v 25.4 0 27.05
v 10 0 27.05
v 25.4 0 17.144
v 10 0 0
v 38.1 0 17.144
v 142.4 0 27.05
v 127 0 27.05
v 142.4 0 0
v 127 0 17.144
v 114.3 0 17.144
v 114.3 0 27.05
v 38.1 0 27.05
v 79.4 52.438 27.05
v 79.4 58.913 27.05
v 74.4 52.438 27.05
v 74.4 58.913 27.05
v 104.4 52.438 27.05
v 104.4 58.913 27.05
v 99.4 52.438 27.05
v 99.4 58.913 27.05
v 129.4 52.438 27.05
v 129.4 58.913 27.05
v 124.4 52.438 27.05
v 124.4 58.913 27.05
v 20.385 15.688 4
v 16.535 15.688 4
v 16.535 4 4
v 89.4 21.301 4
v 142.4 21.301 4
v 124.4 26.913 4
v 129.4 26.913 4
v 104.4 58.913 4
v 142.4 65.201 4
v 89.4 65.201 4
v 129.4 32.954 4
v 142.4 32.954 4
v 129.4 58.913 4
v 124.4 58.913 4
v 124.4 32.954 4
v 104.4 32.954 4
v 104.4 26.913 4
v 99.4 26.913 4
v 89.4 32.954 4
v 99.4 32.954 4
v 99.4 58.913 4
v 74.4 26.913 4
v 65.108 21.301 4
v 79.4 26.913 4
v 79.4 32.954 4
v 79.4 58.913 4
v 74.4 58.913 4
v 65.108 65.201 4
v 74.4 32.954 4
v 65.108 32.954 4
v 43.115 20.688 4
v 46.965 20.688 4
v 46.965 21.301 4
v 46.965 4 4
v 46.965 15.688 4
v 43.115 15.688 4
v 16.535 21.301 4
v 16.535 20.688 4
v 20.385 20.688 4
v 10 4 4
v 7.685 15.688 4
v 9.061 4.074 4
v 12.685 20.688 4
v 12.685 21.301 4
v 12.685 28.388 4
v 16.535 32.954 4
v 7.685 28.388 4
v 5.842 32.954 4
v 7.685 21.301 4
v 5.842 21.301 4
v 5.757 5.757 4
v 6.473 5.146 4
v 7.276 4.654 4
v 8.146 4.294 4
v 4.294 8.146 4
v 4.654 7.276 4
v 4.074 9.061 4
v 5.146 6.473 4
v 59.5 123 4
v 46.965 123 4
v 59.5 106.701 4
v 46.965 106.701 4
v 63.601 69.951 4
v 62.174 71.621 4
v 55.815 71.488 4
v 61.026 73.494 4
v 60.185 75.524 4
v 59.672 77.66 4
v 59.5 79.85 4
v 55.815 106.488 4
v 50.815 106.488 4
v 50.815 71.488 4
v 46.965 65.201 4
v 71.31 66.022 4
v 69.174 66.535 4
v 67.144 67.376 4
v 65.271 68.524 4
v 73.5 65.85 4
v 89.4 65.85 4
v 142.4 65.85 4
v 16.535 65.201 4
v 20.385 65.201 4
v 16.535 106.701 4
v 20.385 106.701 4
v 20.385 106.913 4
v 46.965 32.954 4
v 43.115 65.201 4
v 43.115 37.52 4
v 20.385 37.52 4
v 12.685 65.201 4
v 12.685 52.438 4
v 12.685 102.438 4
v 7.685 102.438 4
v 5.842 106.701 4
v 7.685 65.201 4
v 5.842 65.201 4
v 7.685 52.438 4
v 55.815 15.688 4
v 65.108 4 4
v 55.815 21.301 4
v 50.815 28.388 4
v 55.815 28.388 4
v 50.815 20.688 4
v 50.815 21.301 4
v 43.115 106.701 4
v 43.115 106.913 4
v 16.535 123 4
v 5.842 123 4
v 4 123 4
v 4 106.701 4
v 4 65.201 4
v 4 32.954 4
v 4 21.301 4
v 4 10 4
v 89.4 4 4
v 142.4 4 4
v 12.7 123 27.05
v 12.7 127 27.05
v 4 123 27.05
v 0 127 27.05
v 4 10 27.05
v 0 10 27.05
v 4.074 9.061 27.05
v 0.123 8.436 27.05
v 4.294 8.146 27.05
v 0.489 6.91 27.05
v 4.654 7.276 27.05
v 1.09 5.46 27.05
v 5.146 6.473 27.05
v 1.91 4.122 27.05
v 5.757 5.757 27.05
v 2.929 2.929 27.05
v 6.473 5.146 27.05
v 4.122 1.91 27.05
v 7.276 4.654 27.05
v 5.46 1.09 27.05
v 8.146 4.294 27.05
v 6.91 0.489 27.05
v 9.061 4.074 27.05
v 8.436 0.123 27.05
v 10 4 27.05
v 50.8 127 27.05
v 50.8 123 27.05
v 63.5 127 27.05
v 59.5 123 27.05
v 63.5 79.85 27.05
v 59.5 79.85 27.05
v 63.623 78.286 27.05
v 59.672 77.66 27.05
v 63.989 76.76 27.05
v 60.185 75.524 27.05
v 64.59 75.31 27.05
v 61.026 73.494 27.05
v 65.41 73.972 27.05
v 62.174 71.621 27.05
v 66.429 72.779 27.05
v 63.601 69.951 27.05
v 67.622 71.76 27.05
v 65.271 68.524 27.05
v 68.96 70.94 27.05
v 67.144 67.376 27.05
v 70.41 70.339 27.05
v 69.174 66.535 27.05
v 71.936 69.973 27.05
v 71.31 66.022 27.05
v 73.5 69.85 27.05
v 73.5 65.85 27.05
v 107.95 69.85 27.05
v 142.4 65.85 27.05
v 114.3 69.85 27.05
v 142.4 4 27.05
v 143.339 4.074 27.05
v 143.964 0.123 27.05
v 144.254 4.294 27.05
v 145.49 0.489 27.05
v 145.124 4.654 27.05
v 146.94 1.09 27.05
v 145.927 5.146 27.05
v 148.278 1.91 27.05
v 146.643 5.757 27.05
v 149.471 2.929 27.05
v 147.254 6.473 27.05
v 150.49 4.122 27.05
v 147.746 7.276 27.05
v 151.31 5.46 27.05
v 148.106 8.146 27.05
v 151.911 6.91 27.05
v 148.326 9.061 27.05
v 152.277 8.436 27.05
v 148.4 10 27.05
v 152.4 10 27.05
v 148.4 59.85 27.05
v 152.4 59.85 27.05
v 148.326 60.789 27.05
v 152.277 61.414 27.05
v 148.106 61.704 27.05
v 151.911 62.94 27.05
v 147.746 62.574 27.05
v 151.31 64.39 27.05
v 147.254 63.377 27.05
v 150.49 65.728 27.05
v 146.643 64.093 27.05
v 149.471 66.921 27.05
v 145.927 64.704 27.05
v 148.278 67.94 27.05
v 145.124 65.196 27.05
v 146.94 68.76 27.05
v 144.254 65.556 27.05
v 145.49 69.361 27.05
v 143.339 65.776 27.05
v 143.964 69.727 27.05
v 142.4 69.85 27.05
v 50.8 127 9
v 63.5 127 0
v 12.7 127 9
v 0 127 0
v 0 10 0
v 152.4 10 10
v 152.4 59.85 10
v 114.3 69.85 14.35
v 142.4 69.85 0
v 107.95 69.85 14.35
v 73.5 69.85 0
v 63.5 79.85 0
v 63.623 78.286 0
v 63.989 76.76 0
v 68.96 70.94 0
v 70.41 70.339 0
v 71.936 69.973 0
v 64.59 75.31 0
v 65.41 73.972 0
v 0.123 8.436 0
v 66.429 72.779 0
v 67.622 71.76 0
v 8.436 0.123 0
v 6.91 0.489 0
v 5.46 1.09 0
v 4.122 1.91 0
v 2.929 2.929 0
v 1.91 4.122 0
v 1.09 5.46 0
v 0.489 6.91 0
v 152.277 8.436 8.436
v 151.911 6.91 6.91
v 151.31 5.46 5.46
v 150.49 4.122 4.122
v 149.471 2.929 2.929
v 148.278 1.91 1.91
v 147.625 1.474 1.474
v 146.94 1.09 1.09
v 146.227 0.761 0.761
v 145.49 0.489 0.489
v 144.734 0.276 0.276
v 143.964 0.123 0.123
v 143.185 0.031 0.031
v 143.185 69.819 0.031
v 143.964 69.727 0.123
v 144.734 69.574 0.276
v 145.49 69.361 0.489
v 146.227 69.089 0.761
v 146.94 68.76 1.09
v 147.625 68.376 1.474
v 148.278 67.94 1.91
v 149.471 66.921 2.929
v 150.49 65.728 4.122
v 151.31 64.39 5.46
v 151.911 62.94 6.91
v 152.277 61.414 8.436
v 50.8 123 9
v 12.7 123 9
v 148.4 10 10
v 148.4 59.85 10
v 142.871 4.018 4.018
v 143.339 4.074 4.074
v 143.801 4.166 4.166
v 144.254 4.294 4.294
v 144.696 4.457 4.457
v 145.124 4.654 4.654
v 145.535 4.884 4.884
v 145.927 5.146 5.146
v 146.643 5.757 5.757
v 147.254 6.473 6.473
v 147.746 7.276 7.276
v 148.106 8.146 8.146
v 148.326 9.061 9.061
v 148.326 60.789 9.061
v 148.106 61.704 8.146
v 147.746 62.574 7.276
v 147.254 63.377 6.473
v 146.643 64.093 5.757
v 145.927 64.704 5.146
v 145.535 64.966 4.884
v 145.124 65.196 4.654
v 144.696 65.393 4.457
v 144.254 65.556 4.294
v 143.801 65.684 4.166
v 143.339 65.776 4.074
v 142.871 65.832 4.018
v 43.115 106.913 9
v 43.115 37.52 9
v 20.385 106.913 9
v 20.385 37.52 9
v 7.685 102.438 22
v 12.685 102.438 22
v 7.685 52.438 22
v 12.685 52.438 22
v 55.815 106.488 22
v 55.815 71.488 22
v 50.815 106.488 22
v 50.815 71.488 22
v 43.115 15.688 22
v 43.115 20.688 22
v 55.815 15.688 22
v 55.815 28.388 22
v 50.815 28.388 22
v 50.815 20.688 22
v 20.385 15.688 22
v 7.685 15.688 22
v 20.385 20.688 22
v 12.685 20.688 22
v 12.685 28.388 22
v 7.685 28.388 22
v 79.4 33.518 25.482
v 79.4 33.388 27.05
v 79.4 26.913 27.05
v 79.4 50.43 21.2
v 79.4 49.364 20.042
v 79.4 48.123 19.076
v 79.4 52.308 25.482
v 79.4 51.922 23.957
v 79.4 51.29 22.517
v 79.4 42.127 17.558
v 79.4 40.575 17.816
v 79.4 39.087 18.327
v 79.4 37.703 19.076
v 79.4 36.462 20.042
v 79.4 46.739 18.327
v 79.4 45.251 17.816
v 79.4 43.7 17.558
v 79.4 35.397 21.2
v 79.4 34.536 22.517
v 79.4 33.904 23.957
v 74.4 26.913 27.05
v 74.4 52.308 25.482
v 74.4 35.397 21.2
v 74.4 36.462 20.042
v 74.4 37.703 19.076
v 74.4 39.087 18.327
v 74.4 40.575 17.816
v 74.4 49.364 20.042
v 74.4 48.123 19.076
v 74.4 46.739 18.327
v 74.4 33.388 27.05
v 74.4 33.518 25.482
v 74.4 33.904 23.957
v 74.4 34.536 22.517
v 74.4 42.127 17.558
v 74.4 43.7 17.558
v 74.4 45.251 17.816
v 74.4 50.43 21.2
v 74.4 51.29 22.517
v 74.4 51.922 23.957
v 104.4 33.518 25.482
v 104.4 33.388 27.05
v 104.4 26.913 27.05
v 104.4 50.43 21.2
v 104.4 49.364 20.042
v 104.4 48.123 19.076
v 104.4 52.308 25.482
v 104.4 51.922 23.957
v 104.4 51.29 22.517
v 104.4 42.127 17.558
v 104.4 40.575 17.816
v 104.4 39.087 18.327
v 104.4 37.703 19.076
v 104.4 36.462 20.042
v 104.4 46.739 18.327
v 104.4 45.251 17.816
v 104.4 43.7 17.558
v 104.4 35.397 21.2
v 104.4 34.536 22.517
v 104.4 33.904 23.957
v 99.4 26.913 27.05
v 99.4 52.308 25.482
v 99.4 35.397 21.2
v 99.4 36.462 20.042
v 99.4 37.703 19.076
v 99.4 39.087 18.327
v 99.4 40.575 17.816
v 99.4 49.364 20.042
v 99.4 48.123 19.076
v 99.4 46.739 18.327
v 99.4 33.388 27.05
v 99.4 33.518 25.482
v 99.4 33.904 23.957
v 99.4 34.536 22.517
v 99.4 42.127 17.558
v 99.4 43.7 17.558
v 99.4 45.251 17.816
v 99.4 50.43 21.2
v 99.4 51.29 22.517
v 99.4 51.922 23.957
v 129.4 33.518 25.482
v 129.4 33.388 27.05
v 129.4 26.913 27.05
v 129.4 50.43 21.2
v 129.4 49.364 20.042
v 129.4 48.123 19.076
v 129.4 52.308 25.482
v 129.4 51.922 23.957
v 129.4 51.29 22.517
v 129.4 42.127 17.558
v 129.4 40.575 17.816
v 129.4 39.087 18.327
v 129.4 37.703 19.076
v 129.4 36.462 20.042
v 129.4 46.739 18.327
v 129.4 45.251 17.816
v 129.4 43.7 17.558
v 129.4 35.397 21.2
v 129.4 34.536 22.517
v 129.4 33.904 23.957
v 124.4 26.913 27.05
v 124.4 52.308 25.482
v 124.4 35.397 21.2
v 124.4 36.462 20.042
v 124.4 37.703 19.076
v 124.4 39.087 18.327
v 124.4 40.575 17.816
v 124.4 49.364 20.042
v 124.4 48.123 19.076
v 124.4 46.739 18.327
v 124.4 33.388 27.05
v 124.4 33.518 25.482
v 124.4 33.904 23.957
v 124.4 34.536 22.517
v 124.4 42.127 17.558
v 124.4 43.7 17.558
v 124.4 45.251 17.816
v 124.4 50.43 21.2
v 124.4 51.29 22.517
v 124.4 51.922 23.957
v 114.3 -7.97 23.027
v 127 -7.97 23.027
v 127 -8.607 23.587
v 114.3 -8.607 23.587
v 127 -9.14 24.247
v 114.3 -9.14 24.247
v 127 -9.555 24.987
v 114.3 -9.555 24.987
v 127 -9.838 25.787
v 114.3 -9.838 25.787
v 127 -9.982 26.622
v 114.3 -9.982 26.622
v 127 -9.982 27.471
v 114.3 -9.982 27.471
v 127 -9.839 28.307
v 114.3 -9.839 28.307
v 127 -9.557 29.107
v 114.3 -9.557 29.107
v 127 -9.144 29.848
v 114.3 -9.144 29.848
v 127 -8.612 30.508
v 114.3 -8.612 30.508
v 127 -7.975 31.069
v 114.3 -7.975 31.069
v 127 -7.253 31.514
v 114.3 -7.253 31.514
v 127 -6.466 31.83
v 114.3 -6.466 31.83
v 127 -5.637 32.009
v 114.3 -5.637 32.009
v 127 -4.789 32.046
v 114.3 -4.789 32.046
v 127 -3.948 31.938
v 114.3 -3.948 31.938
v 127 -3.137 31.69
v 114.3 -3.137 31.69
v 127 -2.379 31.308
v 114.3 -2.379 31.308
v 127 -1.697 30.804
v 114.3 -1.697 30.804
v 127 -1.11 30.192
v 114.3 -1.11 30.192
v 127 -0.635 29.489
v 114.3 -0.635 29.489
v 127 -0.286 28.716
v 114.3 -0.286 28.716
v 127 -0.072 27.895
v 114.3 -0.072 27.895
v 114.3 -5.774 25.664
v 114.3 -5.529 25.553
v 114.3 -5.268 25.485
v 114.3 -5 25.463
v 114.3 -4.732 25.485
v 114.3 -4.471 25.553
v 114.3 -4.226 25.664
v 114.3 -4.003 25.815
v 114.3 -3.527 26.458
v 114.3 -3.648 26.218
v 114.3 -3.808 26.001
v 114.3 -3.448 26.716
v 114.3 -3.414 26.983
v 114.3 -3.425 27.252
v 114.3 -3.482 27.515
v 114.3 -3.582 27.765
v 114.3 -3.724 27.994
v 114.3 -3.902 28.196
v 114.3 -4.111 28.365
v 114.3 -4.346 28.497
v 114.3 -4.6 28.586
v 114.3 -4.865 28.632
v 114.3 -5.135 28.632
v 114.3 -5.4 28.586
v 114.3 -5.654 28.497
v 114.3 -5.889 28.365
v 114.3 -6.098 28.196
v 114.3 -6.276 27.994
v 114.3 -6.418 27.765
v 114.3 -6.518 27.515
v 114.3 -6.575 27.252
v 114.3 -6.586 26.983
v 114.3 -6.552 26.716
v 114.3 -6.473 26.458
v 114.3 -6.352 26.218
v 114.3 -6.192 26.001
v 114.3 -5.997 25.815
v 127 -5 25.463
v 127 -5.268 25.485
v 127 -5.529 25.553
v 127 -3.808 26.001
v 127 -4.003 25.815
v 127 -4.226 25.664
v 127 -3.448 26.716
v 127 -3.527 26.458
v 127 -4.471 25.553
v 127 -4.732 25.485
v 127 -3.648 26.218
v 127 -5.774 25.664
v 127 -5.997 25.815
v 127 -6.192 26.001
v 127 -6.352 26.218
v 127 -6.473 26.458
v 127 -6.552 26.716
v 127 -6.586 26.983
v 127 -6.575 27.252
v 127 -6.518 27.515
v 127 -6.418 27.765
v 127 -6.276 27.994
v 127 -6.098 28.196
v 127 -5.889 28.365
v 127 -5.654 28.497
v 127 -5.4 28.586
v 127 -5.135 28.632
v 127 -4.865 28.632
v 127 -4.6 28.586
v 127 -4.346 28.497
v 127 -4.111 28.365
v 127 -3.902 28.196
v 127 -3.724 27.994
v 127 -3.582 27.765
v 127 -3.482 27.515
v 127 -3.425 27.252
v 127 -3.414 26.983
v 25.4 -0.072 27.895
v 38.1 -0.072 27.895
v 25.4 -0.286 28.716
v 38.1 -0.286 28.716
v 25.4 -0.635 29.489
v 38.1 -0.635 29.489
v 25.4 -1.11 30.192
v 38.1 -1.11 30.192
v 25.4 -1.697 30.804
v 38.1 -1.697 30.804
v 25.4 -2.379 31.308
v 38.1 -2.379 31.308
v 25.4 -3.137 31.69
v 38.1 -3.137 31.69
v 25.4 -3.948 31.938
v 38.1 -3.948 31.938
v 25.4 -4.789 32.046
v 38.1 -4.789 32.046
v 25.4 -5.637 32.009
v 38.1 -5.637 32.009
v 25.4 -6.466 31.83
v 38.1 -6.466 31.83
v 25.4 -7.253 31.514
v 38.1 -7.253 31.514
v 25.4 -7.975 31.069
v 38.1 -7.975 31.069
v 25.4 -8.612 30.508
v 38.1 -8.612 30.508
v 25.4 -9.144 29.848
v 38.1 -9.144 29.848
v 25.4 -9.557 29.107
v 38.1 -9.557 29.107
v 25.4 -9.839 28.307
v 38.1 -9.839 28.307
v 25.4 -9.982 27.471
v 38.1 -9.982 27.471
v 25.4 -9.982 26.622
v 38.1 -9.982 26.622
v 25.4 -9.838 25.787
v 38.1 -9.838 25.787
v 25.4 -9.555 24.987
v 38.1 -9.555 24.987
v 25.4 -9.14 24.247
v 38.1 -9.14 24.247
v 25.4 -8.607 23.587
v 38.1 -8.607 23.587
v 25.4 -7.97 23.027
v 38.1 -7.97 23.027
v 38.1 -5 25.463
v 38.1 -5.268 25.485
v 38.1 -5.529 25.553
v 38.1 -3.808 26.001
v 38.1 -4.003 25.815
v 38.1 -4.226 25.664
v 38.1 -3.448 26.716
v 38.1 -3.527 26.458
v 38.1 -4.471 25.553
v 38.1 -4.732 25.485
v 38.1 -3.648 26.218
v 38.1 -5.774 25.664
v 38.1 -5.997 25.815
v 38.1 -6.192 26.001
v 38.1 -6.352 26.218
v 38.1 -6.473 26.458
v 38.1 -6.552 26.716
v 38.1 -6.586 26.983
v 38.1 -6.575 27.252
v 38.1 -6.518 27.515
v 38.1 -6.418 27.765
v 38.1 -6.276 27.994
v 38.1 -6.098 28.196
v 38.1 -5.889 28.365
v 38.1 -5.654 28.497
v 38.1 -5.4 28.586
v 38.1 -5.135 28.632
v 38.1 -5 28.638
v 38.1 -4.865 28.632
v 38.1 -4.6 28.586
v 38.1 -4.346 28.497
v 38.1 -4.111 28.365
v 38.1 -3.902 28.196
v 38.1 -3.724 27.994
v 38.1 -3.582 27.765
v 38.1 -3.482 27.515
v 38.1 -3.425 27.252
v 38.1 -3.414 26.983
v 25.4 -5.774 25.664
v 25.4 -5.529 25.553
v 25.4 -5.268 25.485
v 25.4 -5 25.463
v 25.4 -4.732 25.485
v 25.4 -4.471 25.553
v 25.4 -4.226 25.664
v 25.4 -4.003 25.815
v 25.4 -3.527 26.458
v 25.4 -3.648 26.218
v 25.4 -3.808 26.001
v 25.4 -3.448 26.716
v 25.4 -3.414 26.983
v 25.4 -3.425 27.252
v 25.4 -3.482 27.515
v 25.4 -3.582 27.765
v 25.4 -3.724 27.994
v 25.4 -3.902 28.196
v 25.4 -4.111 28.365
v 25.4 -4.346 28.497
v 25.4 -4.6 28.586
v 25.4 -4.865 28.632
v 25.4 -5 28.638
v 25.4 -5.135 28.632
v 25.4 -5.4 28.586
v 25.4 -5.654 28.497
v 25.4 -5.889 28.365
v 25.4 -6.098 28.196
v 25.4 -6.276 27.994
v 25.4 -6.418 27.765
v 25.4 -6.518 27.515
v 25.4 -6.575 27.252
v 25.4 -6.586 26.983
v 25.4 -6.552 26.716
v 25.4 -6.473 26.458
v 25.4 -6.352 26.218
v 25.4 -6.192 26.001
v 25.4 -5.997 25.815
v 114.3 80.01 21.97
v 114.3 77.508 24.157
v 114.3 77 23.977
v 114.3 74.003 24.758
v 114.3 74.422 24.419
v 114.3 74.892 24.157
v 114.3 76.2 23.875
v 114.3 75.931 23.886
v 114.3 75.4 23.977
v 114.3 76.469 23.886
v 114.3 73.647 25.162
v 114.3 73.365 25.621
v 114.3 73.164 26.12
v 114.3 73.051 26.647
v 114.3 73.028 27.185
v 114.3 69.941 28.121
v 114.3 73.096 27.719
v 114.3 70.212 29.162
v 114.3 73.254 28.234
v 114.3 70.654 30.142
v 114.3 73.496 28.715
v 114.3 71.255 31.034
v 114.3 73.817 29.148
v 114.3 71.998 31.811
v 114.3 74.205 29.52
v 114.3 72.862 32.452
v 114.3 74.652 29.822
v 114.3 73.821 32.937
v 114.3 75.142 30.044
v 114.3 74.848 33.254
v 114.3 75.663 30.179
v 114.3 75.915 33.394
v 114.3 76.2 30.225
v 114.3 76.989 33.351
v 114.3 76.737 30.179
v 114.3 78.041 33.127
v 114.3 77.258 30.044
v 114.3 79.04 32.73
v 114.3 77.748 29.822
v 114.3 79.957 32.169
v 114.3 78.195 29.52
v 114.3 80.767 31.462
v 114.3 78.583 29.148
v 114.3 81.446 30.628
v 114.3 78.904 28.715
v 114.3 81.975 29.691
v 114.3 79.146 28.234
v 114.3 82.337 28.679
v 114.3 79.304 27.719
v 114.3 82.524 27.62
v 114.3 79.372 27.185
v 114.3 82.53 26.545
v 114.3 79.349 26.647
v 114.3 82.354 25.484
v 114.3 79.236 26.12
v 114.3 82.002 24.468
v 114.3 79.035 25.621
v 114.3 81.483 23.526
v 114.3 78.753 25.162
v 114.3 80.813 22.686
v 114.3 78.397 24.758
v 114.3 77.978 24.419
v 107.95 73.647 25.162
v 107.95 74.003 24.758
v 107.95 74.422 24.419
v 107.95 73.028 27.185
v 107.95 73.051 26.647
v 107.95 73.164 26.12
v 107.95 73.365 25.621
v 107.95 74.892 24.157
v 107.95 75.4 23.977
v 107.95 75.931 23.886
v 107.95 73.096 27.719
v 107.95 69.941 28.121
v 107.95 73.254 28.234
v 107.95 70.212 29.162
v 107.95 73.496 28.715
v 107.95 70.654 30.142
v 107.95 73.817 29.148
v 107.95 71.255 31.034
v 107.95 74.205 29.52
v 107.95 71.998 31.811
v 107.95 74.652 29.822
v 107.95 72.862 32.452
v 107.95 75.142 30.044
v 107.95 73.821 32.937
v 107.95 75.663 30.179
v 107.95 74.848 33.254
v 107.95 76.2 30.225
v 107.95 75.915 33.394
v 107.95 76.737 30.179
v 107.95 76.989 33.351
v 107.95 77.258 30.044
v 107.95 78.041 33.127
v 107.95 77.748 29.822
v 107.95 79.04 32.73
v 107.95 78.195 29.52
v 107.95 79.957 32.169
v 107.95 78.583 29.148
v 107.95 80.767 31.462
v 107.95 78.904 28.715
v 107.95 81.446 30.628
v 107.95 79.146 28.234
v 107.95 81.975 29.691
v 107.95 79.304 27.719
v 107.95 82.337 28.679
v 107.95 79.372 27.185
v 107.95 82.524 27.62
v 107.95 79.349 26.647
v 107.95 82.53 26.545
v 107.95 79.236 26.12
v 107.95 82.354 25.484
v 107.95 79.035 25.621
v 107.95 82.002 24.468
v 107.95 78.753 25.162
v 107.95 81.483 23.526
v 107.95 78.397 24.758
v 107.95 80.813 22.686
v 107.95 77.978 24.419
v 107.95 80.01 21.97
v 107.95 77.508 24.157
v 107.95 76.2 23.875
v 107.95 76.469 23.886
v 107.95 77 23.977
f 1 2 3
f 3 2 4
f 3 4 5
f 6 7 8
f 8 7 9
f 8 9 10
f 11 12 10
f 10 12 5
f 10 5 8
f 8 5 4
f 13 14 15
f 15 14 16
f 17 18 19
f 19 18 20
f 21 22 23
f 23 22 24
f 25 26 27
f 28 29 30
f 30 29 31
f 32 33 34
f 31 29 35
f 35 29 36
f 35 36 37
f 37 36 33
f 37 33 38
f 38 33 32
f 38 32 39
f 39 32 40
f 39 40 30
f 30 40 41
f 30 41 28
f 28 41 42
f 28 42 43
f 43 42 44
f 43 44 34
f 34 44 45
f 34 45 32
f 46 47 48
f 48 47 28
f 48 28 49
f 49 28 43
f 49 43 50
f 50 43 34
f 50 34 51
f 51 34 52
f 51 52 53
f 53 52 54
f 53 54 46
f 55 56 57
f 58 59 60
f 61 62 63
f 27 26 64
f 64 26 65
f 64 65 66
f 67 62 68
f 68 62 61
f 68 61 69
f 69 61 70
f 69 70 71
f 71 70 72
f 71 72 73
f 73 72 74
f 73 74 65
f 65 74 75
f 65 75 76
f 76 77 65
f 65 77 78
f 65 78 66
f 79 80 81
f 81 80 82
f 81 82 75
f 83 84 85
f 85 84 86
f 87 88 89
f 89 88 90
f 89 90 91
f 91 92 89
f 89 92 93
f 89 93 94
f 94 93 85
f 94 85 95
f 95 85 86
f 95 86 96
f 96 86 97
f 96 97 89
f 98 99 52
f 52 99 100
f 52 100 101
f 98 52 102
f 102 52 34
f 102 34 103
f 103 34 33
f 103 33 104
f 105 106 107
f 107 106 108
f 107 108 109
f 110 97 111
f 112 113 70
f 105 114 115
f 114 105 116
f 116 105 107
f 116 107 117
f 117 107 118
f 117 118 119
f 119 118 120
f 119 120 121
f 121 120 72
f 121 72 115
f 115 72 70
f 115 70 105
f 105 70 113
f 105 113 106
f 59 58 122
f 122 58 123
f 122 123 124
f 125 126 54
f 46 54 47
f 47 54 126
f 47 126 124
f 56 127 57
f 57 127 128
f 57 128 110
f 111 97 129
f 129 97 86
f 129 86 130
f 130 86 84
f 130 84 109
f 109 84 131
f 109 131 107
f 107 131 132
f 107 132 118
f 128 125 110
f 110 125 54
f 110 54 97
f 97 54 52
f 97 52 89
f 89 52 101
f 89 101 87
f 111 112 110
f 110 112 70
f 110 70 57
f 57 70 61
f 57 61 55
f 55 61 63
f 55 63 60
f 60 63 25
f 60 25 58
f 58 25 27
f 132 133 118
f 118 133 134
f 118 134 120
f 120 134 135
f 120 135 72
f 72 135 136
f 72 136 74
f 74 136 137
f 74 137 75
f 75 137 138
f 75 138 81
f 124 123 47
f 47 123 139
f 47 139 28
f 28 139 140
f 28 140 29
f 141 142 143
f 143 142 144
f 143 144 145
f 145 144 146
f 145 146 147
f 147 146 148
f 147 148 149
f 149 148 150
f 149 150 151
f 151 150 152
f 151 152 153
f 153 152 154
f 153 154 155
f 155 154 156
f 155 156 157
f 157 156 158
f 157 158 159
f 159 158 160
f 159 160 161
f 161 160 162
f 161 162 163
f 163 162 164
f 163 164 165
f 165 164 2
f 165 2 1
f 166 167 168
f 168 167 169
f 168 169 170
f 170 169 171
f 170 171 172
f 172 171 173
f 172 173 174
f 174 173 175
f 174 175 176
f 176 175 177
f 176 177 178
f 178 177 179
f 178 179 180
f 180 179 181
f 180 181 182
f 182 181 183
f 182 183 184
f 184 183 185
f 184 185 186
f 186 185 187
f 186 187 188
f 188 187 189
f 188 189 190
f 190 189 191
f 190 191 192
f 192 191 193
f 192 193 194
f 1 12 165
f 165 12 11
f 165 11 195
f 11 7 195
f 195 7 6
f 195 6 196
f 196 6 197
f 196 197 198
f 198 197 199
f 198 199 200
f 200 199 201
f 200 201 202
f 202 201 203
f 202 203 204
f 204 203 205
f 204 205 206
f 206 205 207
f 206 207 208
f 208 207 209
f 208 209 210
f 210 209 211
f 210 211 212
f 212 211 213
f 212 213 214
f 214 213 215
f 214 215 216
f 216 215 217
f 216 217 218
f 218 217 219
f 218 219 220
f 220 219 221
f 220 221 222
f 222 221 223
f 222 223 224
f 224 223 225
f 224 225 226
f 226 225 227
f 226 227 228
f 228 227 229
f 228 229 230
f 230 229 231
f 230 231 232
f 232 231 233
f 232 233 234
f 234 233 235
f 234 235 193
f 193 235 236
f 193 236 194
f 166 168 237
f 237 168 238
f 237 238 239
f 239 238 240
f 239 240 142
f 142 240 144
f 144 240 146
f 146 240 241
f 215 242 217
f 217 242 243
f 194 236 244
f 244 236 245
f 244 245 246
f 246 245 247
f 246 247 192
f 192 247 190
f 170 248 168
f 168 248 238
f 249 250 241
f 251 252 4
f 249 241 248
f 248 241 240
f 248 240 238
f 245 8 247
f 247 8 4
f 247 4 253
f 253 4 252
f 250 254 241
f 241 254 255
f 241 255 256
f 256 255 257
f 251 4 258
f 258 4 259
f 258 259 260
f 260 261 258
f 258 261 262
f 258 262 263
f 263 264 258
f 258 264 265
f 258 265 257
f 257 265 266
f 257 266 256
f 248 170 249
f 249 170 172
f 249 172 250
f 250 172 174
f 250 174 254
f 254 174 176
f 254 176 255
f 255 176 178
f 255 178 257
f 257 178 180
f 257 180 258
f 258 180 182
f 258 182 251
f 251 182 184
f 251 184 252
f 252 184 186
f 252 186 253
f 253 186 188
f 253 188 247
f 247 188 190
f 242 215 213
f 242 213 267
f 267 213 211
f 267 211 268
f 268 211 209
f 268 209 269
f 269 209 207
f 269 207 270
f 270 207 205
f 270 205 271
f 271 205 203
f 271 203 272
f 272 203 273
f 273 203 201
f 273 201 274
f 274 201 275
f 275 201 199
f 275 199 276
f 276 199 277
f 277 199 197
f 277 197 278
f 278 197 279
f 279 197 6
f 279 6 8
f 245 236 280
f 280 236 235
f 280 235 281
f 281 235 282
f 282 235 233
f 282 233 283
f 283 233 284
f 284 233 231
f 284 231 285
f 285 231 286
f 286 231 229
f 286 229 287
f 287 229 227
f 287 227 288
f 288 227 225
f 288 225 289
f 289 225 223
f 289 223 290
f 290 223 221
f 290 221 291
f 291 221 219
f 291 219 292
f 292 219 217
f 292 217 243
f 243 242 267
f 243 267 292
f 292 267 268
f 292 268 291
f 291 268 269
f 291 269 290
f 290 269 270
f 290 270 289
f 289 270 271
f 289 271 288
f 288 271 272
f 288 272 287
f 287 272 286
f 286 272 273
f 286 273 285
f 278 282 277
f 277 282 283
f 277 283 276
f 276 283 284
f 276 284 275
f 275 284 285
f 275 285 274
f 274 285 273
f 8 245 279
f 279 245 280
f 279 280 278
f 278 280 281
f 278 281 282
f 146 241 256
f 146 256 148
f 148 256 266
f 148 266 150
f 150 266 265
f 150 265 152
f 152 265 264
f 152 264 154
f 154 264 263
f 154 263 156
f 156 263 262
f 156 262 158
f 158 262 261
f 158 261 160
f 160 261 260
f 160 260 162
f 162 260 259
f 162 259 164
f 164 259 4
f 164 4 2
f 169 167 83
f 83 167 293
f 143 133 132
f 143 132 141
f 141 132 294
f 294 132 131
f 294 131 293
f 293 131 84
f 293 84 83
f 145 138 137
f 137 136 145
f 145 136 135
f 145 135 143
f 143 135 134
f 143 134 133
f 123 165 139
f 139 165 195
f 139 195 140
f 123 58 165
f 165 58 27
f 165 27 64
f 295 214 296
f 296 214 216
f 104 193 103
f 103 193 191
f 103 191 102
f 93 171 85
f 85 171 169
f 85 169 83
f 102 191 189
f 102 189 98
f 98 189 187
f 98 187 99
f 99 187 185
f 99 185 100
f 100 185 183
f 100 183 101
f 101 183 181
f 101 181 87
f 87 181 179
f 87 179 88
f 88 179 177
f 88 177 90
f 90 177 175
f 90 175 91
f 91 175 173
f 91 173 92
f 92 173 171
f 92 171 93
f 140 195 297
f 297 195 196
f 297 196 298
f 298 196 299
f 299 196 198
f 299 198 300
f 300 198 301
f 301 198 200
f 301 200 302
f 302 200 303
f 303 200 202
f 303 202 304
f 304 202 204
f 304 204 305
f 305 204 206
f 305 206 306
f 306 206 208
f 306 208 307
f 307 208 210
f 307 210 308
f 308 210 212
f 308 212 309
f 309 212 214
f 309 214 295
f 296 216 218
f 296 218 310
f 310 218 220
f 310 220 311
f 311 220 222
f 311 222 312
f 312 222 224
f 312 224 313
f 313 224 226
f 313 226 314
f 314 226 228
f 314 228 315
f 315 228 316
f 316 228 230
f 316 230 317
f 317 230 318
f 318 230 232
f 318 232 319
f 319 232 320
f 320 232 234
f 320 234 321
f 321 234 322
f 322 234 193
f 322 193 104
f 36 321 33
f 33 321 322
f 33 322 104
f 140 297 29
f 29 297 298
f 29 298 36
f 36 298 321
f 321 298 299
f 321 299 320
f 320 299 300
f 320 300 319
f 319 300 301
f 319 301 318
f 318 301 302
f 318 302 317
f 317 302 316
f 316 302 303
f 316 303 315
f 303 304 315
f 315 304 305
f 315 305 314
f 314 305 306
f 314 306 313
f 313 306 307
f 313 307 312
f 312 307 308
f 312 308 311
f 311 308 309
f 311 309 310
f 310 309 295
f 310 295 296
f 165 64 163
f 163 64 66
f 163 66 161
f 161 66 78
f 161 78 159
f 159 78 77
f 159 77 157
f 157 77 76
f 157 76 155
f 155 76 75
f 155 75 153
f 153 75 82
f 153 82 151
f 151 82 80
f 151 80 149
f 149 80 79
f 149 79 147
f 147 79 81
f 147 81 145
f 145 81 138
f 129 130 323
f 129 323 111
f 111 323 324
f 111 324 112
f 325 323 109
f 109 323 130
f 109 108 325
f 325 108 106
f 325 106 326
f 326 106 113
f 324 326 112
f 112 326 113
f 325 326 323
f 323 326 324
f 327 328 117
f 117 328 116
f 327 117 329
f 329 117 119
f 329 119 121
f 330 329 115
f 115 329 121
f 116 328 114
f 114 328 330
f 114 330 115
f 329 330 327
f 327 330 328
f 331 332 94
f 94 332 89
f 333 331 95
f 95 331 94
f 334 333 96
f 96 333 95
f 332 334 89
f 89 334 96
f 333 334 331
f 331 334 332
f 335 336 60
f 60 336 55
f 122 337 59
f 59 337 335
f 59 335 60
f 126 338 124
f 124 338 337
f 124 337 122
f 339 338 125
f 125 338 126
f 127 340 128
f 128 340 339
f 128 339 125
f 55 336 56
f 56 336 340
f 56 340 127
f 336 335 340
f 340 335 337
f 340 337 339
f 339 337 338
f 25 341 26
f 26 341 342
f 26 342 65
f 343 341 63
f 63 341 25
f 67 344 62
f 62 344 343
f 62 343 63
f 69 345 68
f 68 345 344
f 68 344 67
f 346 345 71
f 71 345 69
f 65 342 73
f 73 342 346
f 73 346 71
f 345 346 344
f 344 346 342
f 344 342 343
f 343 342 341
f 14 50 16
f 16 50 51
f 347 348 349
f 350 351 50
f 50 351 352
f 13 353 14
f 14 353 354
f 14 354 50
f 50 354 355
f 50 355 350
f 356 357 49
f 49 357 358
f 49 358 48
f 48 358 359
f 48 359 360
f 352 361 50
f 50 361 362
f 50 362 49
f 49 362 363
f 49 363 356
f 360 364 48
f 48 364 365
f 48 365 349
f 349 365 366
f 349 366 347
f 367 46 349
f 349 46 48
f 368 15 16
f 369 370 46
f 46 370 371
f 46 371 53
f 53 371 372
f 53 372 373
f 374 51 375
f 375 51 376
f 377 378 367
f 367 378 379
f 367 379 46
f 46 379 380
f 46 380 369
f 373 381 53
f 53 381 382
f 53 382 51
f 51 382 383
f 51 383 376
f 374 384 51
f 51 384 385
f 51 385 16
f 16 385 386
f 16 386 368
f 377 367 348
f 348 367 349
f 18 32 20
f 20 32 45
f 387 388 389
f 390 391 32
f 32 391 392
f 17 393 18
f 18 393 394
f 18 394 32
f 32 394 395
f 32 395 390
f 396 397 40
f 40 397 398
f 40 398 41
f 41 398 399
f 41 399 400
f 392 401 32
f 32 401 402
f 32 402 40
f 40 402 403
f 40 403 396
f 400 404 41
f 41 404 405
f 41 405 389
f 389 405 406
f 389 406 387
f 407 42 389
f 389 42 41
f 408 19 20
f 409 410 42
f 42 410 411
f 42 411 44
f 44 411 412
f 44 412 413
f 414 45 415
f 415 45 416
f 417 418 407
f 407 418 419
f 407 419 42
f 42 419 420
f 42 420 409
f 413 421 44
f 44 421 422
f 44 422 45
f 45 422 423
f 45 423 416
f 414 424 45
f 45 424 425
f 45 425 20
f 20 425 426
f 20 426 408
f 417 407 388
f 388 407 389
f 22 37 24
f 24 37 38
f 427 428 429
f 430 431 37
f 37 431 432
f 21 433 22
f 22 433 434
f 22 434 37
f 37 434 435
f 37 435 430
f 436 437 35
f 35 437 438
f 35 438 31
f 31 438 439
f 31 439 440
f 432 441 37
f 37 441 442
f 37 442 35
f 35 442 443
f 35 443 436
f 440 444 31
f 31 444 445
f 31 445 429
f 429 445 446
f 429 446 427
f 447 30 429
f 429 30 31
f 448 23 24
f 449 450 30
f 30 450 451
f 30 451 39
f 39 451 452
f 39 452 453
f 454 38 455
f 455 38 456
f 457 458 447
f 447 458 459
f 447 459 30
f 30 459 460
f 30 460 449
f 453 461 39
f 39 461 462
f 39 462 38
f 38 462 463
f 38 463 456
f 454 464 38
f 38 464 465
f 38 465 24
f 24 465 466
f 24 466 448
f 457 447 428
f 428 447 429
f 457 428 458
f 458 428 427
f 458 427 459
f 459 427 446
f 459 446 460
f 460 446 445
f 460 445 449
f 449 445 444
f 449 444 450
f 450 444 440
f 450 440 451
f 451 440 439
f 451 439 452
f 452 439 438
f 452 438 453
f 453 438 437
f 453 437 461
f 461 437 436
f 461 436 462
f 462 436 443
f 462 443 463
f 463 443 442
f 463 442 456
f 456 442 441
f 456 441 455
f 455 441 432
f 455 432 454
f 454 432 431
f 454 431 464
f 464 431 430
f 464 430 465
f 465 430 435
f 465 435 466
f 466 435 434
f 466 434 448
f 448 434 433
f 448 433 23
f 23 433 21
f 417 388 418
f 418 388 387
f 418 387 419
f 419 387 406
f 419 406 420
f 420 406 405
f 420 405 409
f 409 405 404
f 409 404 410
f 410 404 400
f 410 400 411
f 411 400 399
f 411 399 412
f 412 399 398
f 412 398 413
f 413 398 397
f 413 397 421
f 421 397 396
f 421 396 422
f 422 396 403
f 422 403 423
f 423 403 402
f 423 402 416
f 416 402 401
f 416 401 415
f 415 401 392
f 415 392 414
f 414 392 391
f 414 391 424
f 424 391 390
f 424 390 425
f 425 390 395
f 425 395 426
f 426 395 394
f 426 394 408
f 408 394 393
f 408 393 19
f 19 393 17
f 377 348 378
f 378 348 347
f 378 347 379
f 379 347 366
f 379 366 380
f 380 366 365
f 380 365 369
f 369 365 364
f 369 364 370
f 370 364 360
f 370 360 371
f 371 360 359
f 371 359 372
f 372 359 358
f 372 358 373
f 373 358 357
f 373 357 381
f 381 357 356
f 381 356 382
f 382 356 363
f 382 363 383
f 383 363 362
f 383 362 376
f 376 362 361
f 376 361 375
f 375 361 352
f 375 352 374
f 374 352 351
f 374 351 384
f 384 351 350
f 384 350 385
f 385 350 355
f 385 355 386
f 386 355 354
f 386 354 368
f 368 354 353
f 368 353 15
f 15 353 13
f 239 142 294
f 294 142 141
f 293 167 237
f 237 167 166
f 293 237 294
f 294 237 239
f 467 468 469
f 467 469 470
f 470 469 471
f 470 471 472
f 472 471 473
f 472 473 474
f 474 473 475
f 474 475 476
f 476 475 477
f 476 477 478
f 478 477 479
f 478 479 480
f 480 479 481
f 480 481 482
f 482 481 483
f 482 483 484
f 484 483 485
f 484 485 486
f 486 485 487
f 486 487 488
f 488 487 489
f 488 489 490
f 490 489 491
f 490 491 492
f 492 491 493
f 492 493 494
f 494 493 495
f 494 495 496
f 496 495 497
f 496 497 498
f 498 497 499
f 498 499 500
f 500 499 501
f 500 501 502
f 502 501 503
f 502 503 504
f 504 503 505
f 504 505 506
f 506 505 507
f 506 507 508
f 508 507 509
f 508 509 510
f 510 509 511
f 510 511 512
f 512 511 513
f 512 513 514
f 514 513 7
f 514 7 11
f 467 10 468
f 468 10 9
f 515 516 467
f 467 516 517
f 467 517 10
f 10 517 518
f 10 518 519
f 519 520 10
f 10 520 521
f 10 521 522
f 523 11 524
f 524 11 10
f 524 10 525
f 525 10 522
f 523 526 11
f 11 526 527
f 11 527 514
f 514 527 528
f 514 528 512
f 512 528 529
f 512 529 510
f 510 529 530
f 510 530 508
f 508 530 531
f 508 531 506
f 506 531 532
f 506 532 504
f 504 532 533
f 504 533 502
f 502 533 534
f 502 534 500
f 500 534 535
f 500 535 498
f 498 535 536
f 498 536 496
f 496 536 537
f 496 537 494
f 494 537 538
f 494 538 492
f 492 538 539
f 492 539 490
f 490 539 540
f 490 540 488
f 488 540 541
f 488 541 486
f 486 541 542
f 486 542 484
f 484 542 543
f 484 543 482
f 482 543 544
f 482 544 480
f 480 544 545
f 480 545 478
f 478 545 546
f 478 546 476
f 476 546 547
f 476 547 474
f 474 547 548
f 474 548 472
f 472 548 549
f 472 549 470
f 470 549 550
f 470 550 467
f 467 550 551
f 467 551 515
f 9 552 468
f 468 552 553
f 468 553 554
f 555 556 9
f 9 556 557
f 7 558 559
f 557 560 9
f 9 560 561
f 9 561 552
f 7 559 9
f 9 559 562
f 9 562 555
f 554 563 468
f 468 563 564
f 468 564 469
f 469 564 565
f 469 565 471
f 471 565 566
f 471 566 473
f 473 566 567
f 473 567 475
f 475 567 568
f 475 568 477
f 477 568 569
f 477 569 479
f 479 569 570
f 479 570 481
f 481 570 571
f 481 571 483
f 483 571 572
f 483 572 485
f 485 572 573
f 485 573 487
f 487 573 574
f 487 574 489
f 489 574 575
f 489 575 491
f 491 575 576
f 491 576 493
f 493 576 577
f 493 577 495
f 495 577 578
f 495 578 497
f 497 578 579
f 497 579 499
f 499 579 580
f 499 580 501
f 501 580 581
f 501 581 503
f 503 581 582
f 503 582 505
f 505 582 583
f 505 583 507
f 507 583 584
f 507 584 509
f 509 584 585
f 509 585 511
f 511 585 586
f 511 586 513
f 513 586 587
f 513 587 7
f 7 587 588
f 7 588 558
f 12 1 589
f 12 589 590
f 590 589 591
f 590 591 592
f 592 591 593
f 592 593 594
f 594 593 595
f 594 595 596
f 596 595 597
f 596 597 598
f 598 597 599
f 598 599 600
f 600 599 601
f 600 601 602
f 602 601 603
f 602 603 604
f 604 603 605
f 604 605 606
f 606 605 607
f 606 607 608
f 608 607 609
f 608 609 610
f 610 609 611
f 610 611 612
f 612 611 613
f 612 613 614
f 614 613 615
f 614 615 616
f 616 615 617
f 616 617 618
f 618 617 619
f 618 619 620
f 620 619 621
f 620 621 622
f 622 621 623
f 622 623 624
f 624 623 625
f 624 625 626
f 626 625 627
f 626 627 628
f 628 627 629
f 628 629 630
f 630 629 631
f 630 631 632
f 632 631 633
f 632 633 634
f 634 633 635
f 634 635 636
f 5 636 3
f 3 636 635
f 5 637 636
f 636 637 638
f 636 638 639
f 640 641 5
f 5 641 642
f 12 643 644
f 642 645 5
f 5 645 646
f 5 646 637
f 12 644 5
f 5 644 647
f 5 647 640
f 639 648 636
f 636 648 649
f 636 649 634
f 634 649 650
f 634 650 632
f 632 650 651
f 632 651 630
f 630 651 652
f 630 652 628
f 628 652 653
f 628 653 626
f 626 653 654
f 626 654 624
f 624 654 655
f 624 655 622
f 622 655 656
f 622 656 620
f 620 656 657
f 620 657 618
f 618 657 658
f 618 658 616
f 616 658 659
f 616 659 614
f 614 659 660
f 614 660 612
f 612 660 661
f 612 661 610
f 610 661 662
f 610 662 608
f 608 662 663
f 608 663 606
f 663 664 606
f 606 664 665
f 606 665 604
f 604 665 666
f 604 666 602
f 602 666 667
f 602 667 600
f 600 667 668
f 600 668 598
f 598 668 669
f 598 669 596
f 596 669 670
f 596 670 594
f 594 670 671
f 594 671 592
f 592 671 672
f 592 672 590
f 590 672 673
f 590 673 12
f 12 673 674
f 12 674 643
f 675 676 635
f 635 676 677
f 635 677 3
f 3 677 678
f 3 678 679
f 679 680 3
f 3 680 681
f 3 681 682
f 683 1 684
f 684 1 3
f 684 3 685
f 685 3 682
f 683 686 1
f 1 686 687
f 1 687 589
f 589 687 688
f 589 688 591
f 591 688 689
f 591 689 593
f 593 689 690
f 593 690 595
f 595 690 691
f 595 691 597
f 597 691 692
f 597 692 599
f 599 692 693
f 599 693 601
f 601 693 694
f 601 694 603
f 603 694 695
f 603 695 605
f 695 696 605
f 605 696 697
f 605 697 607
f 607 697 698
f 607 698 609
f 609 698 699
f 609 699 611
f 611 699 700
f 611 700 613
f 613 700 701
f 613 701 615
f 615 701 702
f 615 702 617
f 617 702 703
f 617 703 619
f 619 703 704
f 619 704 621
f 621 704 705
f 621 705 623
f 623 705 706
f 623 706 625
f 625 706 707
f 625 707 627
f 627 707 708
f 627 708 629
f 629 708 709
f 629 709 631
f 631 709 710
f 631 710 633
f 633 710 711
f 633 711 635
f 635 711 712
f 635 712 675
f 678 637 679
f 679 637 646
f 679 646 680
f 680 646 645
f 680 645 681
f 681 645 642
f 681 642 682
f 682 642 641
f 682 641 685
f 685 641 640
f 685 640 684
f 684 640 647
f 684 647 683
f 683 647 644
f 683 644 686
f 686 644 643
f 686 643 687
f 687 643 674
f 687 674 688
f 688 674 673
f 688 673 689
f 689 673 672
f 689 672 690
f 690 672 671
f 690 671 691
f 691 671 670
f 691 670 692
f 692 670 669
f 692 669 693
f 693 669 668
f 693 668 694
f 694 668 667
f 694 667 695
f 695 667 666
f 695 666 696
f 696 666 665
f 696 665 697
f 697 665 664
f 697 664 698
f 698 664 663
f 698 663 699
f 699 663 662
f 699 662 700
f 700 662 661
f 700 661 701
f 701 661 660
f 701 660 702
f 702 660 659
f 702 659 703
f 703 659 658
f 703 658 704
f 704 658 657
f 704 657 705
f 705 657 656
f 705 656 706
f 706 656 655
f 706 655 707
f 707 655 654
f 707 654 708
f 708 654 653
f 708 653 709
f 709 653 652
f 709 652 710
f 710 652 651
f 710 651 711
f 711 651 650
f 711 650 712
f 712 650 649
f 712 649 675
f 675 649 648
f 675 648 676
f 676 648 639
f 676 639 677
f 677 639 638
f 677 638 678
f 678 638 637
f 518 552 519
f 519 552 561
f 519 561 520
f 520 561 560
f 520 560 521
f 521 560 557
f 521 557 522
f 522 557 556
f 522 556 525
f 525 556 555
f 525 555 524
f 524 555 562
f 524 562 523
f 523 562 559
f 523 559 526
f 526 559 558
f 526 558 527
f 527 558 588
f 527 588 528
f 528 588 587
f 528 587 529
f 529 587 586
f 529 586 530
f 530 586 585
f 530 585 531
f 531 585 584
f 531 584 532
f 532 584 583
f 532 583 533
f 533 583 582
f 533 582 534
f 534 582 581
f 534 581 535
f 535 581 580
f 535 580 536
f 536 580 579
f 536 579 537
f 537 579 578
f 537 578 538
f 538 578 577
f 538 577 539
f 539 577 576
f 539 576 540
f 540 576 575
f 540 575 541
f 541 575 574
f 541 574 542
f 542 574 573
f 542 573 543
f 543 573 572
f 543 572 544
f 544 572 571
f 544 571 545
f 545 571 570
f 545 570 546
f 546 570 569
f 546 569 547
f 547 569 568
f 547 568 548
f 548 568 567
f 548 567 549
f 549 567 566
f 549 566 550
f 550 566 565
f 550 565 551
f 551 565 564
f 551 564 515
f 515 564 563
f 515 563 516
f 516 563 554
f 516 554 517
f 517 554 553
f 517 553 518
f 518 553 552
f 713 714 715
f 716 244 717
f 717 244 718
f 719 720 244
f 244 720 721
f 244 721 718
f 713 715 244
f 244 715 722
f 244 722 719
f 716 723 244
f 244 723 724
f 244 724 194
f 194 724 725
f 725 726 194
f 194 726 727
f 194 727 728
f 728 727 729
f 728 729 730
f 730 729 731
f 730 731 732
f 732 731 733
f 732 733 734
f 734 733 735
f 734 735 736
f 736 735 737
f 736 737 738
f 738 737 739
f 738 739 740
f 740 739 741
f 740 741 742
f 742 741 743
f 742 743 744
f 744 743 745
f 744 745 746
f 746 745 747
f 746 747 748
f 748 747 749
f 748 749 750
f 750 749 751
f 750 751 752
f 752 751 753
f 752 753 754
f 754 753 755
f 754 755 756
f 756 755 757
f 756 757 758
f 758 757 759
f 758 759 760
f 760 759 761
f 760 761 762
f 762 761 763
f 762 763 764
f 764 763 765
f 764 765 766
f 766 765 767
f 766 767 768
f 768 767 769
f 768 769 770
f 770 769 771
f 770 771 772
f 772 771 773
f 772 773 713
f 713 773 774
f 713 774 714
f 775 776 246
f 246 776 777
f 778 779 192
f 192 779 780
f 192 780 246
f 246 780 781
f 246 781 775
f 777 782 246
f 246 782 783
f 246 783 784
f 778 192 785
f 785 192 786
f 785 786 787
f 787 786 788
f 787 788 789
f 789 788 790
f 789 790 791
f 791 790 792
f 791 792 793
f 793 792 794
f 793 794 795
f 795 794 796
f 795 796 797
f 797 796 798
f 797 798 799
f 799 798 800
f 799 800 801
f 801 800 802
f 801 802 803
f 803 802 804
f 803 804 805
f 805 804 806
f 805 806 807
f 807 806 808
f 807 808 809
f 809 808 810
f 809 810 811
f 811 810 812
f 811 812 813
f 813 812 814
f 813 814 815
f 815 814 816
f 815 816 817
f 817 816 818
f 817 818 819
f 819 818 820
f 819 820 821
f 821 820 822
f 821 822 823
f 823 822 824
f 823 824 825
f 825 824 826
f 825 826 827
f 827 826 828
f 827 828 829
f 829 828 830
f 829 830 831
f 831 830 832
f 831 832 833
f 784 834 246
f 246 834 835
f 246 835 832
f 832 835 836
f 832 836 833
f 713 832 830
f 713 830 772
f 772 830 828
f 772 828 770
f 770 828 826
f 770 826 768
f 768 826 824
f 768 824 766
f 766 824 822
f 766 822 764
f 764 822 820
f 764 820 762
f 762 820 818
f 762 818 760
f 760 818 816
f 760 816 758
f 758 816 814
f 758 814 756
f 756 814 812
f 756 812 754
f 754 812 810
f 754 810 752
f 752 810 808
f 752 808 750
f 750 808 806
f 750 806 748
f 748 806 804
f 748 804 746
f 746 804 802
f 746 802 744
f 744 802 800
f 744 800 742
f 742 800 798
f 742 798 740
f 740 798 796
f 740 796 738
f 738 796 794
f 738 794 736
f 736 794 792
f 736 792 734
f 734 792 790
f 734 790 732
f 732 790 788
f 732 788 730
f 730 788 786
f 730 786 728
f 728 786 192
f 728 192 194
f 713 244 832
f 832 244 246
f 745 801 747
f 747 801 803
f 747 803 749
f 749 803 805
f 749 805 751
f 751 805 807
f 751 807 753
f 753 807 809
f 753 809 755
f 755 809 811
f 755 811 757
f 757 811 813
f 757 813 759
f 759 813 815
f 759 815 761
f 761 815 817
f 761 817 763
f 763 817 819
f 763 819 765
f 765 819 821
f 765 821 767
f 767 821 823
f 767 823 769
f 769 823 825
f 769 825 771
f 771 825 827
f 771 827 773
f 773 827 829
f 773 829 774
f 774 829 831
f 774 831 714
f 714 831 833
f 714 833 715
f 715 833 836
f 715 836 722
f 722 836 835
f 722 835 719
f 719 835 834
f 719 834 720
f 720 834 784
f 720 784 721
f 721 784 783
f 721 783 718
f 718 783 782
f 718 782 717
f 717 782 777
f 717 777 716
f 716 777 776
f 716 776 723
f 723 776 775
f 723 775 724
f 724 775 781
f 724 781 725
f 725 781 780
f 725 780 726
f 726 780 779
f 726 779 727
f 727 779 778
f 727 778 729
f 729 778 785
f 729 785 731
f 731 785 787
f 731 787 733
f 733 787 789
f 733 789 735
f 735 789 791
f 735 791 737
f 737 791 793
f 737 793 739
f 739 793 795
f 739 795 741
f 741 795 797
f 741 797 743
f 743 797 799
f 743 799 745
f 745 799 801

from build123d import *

# Parameters (mm, degrees)
SALIENTE_EXTRUIR1_DEPTH = 54.1
REDONDEO1_R             = 10
CROQUIS2_W              = 27.05
CROQUIS2_H              = 127
CORTAR_EXTRUIR1_DEPTH   = 206.624828267
VACIADO1_T              = -4
CROQUIS3_W              = 22.730580246
CROQUIS3_H              = 69.392963169
SALIENTE_EXTRUIR2_DEPTH = 5
CROQUIS3_3_W            = 5
CROQUIS3_3_H            = 50
CROQUIS3_3_H_2          = 35
SALIENTE_EXTRUIR3_DEPTH = 18
CROQUIS4_W              = 5
CROQUIS4_H              = 32.000123075
SALIENTE_EXTRUIR4_DEPTH = 23.05
CORTAR_EXTRUIR2_REACH   = 185.317
CROQUIS5_R              = 9.525
CROQUIS6_W              = 38.1
CROQUIS6_H              = 42.277753805
CORTAR_EXTRUIR3_DEPTH   = 18
SALIENTE_EXTRUIR5_DEPTH = 12.7
SALIENTE_EXTRUIR6_START = -12.7
SALIENTE_EXTRUIR6_DEPTH = 12.7
CROQUIS9_R              = 1.5875
CORTAR_EXTRUIR4_DEPTH   = 183.442326503
CROQUIS10_R             = 3.175
SALIENTE_EXTRUIR7_DEPTH = 6.35


with BuildPart() as part:
    # Croquis1 → Saliente-Extruir1 (new body)
    with BuildSketch(Plane.XY):
        Polygon((0, 0), (0, 127), (63.5, 127), (63.5, 69.85), (152.4, 69.85), (152.4, 0), align=None)
    extrude(amount=SALIENTE_EXTRUIR1_DEPTH)

    # Redondeo1
    redondeo1_edges = [part.edges().sort_by_distance(p)[0] for p in [
        (63.5, 69.85, 27.05),
        (152.4, 69.85, 27.05),
        (152.4, 0, 27.05),
        (0, 0, 27.05),
        (152.4, 34.925, 0),
    ]]
    fillet(redondeo1_edges, radius=REDONDEO1_R)

    # Croquis2 → Cortar-Extruir1 (cut, through all)
    with BuildSketch(Plane(origin=(152.4, 0, 0), x_dir=(0, 0, -1), z_dir=(1, 0, 0))):
        with Locations((-40.575, 63.5)):
            Rectangle(CROQUIS2_W, CROQUIS2_H)
    extrude(amount=-CORTAR_EXTRUIR1_DEPTH, mode=Mode.SUBTRACT)

    # Vaciado1
    vaciado1_openings = [part.faces().sort_by_distance(p)[0] for p in [
        (64.737748774, 51.223088278, 27.05),
    ]]
    offset(amount=VACIADO1_T, openings=vaciado1_openings)

    # Croquis3 → Saliente-Extruir2 (add)
    with BuildSketch(Plane.XY.offset(4)):
        with Locations((31.75, 72.216754897)):
            Rectangle(CROQUIS3_W, CROQUIS3_H)
    extrude(amount=SALIENTE_EXTRUIR2_DEPTH)

    # Croquis3<3> → Saliente-Extruir3 (add)
    with BuildSketch(Plane.XY.offset(4)):
        with Locations((10.184709877, 77.438130808)):
            Rectangle(CROQUIS3_3_W, CROQUIS3_3_H)
        with Locations((53.315290123, 88.988130808)):
            Rectangle(CROQUIS3_3_W, CROQUIS3_3_H_2)
        Polygon((50.815290123, 20.688130808), (43.115290123, 20.688130808), (43.115290123, 15.688130808), (55.815290123, 15.688130808), (55.815290123, 28.388130808), (50.815290123, 28.388130808), align=None)
        Polygon((20.384709877, 20.688130808), (12.684709877, 20.688130808), (12.684709877, 28.388130808), (7.684709877, 28.388130808), (7.684709877, 15.688130808), (20.384709877, 15.688130808), align=None)
    extrude(amount=SALIENTE_EXTRUIR3_DEPTH)

    # Croquis4 → Saliente-Extruir4 (add)
    with BuildSketch(Plane.XY.offset(4)):
        with Locations((76.9, 42.913130808)):
            Rectangle(CROQUIS4_W, CROQUIS4_H)
        with Locations((101.9, 42.913130808)):
            Rectangle(CROQUIS4_W, CROQUIS4_H)
        with Locations((126.9, 42.913130808)):
            Rectangle(CROQUIS4_W, CROQUIS4_H)
    extrude(amount=SALIENTE_EXTRUIR4_DEPTH)

    # Cortar-Extruir2: up to this face of the body (flat: up to its plane)
    cortar_extruir2_end = Plane(part.part.faces().sort_by_distance((55.815290123, 22.038130808, 13))[0])
    # Croquis5 → Cortar-Extruir2 (cut, up to the picked face)
    with BuildSketch(Plane(origin=(129.4, 0, 0), x_dir=(0, 0, -1), z_dir=(1, 0, 0)), mode=Mode.PRIVATE) as cortar_extruir2_sk1:
        with Locations((-27.05, 42.913130808)):
            Circle(CROQUIS5_R)
    cortar_extruir2_tool1 = split(extrude(cortar_extruir2_sk1.sketch, amount=-CORTAR_EXTRUIR2_REACH, mode=Mode.PRIVATE), bisect_by=cortar_extruir2_end, keep=Keep.BOTH, mode=Mode.PRIVATE)
    add(cortar_extruir2_tool1.solids().sort_by(Axis((129.4, 42.913131, 27.05), (-1, 0, 0)))[0], mode=Mode.SUBTRACT)

    # Croquis6 → Cortar-Extruir3 (cut)
    with BuildSketch(Plane.XZ.offset(-123)):
        with Locations((31.75, 30.138876903)):
            Rectangle(CROQUIS6_W, CROQUIS6_H)
    extrude(amount=-CORTAR_EXTRUIR3_DEPTH, mode=Mode.SUBTRACT)

    # Croquis7 → Saliente-Extruir5 (add)
    with BuildSketch(Plane(origin=(127, 0, 0), x_dir=(0, 0, -1), z_dir=(1, 0, 0))):
        with BuildLine():
            Line((-27.05, 0), (-17.144, 0))
            Line((-17.144, 0), (-23.027384209, -7.969606405))
            ThreePointArc((-23.027384209, -7.969606405), (-31.513632603, -7.252994449), (-27.05, 0))
        make_face()
    extrude(amount=-SALIENTE_EXTRUIR5_DEPTH)

    # Croquis8 → Saliente-Extruir6 (add)
    with BuildSketch(Plane.ZY.offset(-25.4).offset(SALIENTE_EXTRUIR6_START)):
        with BuildLine():
            Line((23.027384209, -7.969606405), (17.144, 0))
            Line((17.144, 0), (27.05, 0))
            ThreePointArc((27.05, 0), (31.513632603, -7.252994449), (23.027384209, -7.969606405))
        make_face()
    extrude(amount=SALIENTE_EXTRUIR6_DEPTH)

    # Croquis9 → Cortar-Extruir4 (cut, through all)
    with BuildSketch(Plane(origin=(127, 0, 0), x_dir=(0, 0, -1), z_dir=(1, 0, 0))):
        with Locations(Location((-27.05, -5, 0), (0, 0, 180))):
            Circle(CROQUIS9_R)
    extrude(amount=-CORTAR_EXTRUIR4_DEPTH, mode=Mode.SUBTRACT)

    # Croquis10 → Saliente-Extruir7 (add)
    with BuildSketch(Plane(origin=(107.95, 0, 0), x_dir=(0, 0, -1), z_dir=(1, 0, 0))):
        with BuildLine():
            Line((-21.97, 80.01), (-14.35, 69.85))
            Line((-14.35, 69.85), (-27.05, 69.85))
            ThreePointArc((-27.05, 69.85), (-32.729612663, 79.039806331), (-21.97, 80.01))
        make_face()
        with Locations((-27.05, 76.2)):
            Circle(CROQUIS10_R, mode=Mode.SUBTRACT)
    extrude(amount=SALIENTE_EXTRUIR7_DEPTH)


solid = part.part
